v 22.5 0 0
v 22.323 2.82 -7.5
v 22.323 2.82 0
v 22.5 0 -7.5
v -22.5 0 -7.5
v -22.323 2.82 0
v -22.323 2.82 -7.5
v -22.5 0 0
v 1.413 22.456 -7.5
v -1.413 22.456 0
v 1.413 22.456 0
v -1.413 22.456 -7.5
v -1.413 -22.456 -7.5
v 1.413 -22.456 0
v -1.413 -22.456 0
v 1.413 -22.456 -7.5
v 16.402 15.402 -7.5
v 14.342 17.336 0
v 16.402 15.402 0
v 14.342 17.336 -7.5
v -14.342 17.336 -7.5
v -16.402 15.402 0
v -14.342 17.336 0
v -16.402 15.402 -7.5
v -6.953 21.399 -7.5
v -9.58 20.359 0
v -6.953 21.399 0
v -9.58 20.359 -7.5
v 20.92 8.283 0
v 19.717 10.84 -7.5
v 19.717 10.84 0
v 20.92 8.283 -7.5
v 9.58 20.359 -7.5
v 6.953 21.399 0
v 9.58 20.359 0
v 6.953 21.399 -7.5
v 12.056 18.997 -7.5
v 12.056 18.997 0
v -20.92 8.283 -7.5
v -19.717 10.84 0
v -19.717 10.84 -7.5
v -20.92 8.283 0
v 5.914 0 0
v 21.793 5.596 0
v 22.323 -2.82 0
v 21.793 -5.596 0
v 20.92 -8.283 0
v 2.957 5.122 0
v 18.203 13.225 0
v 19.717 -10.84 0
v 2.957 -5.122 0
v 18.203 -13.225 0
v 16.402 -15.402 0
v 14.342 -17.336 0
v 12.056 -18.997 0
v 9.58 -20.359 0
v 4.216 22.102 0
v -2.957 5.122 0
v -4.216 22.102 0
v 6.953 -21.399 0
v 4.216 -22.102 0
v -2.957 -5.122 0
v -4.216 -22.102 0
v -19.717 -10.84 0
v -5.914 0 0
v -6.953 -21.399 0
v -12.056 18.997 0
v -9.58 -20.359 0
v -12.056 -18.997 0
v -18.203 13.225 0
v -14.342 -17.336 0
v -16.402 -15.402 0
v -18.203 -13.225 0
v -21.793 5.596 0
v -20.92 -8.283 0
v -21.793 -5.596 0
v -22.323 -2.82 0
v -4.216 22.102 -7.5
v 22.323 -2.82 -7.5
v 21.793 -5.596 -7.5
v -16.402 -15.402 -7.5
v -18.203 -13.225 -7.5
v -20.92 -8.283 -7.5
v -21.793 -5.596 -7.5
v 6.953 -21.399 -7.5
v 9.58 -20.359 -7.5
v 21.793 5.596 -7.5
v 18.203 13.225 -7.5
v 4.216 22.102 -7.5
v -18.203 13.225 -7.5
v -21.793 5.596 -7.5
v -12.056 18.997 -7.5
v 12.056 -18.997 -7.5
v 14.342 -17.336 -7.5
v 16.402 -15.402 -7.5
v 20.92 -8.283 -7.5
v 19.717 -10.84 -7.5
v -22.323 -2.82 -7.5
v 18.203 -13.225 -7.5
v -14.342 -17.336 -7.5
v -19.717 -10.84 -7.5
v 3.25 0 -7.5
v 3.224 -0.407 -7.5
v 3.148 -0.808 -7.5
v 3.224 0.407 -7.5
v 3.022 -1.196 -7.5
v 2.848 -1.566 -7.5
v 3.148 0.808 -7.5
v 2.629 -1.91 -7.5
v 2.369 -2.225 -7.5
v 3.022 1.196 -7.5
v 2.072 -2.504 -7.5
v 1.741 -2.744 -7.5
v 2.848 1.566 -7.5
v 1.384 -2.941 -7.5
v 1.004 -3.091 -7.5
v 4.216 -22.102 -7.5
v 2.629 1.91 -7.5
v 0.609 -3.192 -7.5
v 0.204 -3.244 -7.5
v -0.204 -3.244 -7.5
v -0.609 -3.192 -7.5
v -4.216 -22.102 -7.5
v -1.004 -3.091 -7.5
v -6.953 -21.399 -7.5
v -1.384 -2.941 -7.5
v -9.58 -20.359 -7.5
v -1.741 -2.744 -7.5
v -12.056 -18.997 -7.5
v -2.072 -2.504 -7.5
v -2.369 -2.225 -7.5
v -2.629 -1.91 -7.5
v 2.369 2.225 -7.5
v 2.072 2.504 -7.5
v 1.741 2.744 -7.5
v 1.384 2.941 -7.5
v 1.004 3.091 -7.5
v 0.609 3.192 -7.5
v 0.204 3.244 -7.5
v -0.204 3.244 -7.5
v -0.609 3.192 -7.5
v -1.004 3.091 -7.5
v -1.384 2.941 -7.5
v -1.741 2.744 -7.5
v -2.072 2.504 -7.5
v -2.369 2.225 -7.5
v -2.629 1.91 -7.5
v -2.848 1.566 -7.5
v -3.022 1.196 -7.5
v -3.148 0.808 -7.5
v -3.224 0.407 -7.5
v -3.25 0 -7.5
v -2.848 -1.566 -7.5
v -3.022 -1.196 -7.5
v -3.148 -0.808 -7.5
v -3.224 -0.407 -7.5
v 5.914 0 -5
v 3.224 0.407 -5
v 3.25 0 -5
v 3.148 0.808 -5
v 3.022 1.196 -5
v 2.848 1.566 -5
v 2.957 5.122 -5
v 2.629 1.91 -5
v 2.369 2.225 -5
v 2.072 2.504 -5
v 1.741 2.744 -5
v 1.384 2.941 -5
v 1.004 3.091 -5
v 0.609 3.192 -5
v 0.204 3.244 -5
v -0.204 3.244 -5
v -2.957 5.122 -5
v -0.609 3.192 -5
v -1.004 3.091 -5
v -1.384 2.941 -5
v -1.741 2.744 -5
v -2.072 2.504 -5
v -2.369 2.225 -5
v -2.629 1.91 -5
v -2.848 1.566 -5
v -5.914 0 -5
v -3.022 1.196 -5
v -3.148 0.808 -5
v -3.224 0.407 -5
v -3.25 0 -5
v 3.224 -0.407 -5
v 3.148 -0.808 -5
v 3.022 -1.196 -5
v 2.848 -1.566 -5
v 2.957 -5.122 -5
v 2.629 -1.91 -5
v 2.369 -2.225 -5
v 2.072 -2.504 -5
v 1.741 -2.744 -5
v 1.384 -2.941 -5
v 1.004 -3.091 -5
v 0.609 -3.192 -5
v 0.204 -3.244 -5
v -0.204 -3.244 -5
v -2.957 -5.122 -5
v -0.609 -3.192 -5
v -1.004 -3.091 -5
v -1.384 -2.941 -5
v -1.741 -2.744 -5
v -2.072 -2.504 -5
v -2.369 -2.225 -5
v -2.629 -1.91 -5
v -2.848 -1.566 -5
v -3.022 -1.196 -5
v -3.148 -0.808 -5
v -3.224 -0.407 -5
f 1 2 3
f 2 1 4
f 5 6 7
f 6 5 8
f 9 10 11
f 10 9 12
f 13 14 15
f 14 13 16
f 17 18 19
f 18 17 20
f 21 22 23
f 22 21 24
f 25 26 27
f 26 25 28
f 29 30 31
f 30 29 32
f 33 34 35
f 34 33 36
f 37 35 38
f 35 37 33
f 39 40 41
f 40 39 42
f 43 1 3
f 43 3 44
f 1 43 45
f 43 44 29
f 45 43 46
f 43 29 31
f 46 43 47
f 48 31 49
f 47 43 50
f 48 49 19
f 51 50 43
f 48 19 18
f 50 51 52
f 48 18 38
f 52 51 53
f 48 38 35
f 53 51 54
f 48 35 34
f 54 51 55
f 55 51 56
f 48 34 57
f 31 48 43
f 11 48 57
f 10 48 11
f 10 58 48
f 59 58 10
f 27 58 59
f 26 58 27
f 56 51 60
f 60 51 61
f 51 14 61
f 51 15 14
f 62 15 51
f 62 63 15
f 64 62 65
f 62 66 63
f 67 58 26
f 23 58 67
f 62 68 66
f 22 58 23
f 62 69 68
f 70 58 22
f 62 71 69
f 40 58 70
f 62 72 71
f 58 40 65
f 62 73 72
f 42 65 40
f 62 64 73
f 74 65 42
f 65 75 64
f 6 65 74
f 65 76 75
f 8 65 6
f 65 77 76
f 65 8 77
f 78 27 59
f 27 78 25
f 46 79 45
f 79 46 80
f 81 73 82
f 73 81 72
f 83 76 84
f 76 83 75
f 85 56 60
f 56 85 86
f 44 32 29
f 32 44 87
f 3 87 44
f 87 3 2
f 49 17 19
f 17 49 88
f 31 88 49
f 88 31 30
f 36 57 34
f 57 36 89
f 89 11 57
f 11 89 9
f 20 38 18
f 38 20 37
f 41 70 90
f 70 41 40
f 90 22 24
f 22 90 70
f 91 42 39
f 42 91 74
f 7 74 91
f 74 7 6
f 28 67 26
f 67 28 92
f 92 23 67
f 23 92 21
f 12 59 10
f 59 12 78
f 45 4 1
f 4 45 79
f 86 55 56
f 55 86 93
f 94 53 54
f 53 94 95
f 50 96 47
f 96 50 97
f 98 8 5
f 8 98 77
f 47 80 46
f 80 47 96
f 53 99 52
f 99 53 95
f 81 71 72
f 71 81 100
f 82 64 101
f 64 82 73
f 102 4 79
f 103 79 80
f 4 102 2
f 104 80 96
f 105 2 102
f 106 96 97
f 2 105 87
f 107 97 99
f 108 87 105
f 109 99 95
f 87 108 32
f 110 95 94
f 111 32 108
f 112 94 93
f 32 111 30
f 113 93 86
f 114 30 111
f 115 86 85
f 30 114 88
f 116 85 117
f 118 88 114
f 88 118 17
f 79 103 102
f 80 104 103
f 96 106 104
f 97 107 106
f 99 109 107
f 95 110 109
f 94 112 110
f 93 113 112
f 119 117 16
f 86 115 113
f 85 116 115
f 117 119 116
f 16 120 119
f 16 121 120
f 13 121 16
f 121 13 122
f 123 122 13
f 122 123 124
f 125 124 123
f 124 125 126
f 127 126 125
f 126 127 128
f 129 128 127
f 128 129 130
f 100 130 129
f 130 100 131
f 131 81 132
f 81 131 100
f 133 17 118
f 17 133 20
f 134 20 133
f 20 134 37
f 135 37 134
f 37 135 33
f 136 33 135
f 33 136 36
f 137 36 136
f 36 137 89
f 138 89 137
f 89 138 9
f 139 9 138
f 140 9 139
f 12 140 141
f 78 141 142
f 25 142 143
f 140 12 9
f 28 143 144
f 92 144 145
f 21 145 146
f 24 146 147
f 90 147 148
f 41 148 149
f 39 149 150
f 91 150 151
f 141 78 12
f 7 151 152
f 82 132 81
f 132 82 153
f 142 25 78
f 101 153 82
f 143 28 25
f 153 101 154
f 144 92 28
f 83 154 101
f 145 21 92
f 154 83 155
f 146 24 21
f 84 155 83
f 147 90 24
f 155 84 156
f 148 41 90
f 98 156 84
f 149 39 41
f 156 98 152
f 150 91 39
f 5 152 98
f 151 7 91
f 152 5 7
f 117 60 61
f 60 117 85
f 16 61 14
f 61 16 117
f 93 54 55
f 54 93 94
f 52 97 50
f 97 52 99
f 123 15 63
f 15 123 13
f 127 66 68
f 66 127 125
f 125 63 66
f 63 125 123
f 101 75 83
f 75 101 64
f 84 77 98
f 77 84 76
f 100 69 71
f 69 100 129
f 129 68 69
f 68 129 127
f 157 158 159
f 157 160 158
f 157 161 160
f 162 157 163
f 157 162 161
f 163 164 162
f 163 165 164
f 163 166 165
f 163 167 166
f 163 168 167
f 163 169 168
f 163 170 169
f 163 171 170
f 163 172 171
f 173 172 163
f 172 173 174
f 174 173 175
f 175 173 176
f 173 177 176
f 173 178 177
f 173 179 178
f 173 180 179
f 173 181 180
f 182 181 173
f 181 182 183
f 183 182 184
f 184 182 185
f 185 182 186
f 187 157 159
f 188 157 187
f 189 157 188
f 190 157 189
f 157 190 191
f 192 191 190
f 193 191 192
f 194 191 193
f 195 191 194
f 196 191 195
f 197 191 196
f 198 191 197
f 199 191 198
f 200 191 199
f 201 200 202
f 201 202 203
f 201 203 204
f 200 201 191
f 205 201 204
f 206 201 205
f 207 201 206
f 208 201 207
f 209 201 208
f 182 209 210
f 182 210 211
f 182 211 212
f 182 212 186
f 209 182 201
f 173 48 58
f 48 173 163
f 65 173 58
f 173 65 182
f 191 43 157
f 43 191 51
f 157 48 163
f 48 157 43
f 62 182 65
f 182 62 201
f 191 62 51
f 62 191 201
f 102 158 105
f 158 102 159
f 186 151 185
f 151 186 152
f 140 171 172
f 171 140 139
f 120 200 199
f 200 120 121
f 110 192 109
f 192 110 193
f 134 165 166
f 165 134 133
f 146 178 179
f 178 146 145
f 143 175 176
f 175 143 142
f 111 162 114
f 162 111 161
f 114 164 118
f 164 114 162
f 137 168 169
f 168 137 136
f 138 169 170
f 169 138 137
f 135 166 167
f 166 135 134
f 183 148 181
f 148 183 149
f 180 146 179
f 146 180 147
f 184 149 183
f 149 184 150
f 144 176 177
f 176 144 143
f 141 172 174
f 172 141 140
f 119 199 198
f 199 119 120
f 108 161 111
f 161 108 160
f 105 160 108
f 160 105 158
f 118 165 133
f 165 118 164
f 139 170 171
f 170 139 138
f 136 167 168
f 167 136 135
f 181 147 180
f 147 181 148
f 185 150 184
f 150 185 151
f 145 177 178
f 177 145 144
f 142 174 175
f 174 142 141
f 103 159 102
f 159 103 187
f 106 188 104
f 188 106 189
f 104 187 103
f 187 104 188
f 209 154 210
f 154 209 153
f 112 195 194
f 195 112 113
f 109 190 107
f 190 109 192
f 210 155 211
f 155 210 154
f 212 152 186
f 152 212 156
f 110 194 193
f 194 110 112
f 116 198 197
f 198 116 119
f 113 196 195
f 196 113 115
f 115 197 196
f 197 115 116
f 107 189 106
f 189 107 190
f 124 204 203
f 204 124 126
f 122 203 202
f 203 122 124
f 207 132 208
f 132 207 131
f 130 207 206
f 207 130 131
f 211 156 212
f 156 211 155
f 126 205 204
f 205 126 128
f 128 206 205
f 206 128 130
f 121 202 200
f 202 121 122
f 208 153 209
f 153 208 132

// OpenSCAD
$fn = 50;

difference() {
	union() {
		translate(v = [0, 0, -7.5]) {
			cylinder(h = 7.5, r = 22.5);
		}
		#translate(v = [0, 0, -9.0]) {
			cylinder(h = 9, r = 2.875);
		}
	}
	union() {
		translate(v = [0, 0, 0]) {
			rotate(a = [0, 0, 0]) {
				difference() {
					union() {
						translate(v = [0, 0, -5]) {
							linear_extrude(height = 5) {
								polygon(points = [[5.914249999999999, 0.0], [2.957125, 5.1218907443321156], [-2.9571249999999982, 5.1218907443321156], [-5.914249999999999, 7.242867331857232e-16], [-2.9571250000000022, -5.121890744332115], [2.9571249999999956, -5.121890744332118]]);
							}
						}
					}
					union();
				}
			}
		}
		#translate(v = [0, 0, -100.0]) {
			cylinder(h = 200, r = 3.25);
		}
	}
}
